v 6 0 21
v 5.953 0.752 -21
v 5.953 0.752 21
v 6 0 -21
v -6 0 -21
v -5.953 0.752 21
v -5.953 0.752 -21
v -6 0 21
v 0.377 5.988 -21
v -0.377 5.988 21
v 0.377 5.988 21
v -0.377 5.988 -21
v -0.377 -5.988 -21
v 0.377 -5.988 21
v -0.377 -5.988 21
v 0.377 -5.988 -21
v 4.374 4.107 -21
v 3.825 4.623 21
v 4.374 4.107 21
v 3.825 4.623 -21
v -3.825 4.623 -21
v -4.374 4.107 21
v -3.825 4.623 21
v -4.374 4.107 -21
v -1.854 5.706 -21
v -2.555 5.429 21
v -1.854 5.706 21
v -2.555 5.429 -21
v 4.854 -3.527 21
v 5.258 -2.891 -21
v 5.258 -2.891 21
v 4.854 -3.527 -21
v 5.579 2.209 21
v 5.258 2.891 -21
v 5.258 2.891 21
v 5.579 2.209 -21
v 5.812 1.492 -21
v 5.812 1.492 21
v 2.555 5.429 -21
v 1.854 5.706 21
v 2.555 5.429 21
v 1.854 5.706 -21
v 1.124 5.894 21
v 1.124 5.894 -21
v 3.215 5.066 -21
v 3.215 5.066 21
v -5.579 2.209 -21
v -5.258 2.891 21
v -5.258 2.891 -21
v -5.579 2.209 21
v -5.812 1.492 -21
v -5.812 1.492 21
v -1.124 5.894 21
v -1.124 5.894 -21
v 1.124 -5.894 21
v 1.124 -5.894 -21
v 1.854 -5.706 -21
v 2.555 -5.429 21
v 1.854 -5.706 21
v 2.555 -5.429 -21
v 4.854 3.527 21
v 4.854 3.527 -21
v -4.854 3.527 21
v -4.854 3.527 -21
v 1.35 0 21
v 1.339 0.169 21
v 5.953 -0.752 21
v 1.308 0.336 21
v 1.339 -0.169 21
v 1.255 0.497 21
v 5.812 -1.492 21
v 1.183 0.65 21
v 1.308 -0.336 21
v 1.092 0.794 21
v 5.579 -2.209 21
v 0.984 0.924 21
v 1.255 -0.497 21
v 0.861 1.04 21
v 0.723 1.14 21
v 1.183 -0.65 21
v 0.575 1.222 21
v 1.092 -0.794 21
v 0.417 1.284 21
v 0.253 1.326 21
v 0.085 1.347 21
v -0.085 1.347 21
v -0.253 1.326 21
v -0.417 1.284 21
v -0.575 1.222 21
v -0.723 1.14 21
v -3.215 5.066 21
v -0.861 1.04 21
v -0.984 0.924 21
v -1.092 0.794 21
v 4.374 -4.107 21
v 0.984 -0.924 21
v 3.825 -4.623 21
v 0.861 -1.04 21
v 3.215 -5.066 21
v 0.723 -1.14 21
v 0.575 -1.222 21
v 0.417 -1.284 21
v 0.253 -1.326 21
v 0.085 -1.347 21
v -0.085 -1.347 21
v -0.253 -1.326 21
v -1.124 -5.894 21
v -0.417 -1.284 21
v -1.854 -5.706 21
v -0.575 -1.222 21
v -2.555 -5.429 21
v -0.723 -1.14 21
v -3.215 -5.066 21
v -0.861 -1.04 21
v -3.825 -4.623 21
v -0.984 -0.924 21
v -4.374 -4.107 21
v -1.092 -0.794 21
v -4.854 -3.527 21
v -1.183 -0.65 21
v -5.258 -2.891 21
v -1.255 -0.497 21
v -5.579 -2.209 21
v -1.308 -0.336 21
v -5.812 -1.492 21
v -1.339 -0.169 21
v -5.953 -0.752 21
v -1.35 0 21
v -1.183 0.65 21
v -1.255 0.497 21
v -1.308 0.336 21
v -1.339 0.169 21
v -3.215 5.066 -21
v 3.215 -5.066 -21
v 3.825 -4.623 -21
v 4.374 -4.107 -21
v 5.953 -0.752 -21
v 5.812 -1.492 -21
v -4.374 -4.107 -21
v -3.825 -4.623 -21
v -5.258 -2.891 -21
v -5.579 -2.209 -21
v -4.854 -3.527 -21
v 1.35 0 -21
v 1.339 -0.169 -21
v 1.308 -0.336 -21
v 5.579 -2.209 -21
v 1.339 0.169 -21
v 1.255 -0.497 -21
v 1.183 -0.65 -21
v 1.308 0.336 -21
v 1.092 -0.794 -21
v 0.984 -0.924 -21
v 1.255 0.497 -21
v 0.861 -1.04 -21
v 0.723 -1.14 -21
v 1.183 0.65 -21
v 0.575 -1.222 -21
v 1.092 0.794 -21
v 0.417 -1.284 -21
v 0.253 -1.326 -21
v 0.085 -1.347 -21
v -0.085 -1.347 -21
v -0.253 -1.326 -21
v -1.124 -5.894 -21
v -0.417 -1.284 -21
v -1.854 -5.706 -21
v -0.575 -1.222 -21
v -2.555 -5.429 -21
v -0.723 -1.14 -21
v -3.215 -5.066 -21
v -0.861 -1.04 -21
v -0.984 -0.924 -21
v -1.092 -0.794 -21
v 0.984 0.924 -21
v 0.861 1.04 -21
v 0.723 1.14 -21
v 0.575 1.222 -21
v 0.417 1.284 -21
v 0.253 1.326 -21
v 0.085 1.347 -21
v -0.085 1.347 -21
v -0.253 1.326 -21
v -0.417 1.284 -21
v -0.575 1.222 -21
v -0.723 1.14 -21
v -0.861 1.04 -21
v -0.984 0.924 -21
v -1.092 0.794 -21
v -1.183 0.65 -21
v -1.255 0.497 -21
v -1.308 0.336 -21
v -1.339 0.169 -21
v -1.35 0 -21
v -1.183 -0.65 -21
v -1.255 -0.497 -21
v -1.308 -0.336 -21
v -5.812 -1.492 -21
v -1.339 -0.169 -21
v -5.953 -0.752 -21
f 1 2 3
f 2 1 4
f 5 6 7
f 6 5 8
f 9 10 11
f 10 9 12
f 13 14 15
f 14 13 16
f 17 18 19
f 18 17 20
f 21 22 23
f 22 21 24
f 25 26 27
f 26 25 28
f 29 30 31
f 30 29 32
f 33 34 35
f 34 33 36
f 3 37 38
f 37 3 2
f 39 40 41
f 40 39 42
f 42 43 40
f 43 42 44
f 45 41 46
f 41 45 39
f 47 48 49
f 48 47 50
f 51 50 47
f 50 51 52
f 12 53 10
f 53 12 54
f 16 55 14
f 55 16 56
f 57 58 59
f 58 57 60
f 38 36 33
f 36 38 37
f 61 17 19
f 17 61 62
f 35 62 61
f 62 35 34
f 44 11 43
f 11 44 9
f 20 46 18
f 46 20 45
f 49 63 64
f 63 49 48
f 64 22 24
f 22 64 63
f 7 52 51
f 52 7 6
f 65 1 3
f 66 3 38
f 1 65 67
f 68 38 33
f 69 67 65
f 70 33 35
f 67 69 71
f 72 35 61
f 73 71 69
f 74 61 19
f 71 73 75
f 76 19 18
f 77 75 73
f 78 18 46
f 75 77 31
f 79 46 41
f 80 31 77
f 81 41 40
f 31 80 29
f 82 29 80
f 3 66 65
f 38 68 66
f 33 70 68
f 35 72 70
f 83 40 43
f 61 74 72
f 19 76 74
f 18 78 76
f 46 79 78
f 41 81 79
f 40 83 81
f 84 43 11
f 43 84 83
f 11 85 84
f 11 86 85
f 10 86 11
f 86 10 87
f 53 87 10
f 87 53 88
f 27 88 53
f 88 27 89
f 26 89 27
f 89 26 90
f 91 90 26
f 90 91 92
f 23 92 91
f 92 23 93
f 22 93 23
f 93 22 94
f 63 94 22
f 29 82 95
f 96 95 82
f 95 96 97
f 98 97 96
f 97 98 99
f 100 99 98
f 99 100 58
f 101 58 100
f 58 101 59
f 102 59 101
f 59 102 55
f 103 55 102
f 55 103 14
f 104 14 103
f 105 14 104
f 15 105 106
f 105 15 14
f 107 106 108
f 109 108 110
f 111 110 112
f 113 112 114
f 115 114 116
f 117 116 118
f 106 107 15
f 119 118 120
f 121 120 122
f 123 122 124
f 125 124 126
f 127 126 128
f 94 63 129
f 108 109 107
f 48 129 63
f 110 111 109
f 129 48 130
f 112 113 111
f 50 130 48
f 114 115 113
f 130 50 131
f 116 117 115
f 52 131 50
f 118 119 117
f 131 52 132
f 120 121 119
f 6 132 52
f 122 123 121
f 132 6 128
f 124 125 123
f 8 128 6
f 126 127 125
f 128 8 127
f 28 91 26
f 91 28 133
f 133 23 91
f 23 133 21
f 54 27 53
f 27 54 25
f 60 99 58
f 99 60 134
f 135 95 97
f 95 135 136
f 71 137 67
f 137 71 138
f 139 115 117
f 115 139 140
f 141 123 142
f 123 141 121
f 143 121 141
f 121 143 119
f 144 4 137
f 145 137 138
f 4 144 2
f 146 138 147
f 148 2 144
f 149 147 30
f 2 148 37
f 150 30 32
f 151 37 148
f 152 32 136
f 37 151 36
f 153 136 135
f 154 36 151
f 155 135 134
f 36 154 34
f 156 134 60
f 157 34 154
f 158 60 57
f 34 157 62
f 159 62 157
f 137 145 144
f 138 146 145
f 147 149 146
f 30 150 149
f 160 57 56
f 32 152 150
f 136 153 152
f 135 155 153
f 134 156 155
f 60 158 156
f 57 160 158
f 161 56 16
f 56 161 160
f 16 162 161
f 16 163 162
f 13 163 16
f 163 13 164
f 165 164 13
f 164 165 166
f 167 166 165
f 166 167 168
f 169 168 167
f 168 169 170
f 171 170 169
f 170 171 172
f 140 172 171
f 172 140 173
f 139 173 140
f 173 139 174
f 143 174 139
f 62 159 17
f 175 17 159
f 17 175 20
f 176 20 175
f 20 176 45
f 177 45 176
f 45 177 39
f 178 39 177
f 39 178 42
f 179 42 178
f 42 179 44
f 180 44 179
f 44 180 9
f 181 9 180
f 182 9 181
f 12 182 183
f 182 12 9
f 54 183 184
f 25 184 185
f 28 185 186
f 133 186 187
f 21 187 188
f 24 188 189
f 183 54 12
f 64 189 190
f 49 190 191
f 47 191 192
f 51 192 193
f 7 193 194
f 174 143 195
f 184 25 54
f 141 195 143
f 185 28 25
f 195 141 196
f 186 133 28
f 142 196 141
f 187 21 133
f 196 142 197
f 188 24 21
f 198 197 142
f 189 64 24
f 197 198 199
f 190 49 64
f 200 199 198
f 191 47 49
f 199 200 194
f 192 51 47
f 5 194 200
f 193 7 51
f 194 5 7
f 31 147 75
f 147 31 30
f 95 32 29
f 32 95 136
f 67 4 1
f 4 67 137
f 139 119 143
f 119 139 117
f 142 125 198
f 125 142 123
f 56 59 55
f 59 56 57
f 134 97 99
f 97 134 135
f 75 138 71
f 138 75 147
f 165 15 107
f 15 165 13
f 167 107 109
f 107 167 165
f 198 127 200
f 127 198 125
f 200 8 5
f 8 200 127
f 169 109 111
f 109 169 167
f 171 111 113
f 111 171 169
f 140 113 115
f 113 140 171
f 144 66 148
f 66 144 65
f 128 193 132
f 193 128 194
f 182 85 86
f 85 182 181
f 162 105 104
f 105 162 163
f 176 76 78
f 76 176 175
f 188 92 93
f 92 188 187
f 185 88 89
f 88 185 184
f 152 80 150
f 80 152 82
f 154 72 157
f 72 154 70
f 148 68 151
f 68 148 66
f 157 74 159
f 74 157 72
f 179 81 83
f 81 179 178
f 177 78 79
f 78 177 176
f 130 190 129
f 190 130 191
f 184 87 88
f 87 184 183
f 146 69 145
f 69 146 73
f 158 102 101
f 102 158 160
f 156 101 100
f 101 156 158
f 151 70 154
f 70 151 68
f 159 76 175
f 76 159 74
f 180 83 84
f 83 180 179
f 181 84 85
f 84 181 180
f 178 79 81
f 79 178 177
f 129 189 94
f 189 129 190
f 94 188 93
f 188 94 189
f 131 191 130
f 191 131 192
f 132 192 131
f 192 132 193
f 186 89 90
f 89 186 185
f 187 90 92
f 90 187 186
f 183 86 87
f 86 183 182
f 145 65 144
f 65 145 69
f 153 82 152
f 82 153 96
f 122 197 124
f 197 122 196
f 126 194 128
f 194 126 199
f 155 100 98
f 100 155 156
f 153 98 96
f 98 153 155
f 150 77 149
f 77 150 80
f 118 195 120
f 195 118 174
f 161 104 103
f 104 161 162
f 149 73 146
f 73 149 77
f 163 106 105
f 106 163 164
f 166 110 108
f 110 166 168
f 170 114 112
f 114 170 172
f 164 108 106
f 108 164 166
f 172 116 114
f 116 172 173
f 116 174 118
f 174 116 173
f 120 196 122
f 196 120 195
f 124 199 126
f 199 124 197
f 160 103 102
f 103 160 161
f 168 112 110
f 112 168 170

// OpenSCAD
$fn = 50;


difference() {
	union() {
		translate(v = [0, 0, -21.0000000000]) {
			cylinder(h = 42, r = 6.0000000000);
		}
	}
	union() {
		translate(v = [0, 0, -100.0000000000]) {
			cylinder(h = 200, r = 1.3500000000);
		}
	}
}
